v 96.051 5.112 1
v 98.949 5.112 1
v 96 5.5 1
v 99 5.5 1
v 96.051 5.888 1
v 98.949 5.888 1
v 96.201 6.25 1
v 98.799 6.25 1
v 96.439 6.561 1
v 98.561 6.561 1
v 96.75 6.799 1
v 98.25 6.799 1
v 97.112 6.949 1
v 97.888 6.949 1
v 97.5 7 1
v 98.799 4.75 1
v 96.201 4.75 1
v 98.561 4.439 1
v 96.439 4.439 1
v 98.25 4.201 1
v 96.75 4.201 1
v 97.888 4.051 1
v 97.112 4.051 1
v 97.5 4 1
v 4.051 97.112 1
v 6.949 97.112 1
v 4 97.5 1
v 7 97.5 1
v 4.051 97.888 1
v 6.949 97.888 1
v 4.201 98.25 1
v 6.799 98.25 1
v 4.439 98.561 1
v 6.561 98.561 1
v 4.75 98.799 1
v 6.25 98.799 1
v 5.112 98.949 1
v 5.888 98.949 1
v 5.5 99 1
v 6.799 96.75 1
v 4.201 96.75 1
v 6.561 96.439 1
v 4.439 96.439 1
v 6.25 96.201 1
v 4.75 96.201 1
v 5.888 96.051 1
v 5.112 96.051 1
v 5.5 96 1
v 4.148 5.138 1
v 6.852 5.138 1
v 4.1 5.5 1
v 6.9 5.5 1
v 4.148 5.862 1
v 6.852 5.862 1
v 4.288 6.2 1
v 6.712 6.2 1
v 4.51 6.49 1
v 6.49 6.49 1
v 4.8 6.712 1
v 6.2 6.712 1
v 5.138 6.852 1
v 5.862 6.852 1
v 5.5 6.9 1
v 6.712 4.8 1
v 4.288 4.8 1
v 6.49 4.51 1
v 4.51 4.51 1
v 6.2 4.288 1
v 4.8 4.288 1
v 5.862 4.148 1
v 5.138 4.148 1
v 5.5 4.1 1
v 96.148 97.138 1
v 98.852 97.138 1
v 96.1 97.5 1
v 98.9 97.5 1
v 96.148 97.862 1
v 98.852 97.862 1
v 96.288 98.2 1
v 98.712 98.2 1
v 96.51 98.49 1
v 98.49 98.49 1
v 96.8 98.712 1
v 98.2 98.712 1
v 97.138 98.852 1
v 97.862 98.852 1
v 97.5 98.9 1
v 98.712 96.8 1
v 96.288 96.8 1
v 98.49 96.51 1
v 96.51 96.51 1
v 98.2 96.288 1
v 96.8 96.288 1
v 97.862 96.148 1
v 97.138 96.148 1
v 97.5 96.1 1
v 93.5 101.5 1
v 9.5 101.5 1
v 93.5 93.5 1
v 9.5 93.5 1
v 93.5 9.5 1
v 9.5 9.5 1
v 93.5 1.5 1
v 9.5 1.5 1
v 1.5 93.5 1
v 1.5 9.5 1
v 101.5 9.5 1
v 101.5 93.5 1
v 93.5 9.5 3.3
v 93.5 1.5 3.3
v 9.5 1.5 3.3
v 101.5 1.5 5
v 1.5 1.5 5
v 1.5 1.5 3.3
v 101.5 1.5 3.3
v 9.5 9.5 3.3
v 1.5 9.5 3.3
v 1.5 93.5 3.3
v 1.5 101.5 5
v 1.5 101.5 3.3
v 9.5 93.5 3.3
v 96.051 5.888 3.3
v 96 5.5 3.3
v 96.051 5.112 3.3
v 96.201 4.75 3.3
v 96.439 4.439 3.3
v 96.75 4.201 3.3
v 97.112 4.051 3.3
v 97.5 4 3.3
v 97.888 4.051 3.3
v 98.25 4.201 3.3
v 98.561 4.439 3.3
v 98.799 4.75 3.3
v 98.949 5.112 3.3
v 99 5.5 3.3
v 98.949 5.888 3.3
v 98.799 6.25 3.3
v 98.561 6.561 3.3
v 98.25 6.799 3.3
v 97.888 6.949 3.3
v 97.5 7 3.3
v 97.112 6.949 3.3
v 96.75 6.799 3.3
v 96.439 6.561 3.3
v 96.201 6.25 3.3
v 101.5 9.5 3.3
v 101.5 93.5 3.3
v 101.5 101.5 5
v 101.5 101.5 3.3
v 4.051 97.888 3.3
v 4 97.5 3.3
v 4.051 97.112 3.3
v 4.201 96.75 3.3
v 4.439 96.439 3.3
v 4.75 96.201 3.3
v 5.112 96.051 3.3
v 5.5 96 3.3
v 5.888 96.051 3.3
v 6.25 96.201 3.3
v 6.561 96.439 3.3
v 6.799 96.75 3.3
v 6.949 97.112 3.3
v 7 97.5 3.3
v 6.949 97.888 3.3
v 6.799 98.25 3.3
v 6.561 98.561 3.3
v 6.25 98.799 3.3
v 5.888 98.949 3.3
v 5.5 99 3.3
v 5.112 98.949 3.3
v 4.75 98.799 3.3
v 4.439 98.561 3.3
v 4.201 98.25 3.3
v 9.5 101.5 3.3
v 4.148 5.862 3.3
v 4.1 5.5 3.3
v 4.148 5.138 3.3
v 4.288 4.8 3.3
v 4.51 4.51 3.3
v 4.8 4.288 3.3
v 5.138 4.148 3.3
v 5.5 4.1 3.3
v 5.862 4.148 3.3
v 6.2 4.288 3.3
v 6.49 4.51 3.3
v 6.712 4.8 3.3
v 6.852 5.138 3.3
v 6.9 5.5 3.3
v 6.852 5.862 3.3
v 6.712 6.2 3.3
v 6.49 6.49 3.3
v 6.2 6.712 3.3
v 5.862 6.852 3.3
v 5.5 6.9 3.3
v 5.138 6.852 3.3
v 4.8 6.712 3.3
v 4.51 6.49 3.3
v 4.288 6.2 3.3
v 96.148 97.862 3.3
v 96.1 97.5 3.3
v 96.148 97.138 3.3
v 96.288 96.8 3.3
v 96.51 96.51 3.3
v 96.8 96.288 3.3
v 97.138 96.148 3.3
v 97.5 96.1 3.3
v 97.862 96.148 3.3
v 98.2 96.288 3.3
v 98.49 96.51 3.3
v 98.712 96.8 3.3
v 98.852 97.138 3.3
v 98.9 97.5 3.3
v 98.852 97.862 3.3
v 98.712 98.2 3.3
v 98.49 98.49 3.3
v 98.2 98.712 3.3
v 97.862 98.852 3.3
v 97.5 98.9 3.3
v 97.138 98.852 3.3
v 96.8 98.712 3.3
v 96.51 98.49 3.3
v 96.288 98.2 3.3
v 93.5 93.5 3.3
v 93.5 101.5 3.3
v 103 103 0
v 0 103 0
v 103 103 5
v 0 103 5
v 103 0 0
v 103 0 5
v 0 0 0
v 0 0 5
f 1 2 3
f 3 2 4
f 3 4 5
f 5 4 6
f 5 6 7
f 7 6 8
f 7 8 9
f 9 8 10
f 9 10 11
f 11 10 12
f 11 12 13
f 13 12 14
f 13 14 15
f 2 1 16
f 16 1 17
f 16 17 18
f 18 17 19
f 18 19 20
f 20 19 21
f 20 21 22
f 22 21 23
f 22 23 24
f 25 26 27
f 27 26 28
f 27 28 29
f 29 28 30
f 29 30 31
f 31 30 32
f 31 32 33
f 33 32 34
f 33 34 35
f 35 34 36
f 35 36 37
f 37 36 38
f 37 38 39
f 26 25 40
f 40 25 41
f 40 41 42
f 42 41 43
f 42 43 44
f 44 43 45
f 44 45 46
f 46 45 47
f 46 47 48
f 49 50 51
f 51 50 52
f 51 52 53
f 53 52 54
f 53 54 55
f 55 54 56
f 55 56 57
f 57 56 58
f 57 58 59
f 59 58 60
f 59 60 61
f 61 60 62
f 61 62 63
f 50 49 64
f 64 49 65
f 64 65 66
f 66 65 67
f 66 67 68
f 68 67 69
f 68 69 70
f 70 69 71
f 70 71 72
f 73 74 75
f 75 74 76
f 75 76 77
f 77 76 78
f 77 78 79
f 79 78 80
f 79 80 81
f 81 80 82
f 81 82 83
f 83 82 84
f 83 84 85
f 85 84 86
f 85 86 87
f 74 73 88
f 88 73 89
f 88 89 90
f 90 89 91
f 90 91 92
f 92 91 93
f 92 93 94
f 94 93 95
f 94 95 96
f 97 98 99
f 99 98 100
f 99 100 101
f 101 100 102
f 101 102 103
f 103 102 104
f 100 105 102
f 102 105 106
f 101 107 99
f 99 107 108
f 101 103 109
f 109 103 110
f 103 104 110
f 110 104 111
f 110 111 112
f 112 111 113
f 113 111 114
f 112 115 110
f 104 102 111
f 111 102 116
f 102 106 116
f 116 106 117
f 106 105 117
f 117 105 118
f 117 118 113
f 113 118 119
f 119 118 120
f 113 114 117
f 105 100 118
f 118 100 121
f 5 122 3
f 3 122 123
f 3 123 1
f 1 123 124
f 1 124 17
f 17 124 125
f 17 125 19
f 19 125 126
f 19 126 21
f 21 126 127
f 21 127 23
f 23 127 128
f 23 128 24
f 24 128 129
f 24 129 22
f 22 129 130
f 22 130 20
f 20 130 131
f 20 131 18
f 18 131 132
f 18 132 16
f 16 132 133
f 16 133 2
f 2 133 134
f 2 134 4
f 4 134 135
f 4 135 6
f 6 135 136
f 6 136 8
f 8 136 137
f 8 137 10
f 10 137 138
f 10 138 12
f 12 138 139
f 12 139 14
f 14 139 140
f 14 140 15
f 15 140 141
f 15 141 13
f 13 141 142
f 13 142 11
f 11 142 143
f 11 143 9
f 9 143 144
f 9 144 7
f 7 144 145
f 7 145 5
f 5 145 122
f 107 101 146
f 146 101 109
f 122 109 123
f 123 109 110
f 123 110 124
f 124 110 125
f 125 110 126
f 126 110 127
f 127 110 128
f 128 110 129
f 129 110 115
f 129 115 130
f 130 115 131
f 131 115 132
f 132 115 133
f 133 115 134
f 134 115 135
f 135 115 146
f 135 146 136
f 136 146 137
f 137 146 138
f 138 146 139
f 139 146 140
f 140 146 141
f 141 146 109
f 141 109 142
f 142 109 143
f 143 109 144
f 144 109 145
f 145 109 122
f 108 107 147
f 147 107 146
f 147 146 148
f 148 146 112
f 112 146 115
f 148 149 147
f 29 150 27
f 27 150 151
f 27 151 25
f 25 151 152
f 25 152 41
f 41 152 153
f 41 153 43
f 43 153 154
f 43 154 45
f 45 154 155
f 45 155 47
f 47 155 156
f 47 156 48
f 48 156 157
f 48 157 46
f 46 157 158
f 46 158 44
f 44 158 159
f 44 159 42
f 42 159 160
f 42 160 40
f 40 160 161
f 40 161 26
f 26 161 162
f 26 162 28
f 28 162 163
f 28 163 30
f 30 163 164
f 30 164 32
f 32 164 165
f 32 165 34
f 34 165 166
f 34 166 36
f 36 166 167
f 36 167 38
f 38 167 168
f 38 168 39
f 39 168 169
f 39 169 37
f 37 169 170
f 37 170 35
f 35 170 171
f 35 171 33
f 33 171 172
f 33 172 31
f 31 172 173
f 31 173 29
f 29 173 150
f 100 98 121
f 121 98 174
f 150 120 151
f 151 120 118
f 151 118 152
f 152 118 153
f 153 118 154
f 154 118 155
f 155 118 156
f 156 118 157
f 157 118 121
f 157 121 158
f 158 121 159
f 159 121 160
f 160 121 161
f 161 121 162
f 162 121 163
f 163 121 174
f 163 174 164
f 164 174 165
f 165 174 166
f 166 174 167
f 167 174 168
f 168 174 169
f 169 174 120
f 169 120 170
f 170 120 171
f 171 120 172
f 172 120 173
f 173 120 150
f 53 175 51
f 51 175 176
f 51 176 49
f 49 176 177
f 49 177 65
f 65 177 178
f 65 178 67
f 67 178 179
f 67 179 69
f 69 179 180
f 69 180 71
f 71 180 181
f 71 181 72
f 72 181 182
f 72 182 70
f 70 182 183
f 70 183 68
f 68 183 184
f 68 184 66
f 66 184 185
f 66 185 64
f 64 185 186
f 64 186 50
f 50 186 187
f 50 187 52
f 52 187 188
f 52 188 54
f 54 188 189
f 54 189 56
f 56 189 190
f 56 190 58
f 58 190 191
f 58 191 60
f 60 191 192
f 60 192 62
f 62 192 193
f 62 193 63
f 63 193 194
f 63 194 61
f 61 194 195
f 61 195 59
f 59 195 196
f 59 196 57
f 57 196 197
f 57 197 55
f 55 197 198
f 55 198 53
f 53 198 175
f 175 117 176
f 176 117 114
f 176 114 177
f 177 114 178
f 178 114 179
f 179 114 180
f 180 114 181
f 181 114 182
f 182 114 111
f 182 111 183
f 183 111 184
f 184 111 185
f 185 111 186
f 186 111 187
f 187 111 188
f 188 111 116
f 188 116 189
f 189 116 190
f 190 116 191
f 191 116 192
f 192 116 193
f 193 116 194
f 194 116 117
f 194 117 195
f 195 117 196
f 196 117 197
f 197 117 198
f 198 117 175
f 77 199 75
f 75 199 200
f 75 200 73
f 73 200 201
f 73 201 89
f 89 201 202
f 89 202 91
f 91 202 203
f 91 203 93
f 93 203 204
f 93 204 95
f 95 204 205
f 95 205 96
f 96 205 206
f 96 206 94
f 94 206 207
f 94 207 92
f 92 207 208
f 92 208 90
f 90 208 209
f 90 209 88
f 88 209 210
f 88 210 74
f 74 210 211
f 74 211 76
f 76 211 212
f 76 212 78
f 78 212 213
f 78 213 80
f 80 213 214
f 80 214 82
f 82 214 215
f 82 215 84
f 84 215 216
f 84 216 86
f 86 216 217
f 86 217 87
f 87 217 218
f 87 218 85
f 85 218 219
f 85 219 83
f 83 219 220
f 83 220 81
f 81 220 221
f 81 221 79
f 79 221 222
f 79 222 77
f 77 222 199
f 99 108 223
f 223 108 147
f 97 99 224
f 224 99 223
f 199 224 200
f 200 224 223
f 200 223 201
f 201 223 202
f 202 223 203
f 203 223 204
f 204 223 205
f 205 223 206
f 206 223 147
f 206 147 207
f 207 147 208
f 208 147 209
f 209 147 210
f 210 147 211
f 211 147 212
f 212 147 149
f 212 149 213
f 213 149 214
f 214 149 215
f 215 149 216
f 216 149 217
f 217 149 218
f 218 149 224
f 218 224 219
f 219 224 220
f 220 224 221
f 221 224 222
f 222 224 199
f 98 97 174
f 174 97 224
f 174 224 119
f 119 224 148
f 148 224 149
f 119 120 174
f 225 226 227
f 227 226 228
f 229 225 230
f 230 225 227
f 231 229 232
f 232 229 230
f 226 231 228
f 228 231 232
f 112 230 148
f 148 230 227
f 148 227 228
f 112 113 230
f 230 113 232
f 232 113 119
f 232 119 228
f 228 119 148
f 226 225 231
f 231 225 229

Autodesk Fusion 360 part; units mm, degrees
sketch "스케치1" plane through (0, 0, 0) normal (0, 0, 1) x (1, 0, 0)
  line L0 (0, 0) -> (103, 0)
  line L1 (103, 0) -> (103, 103)
  line L2 (103, 103) -> (0, 103)
  line L3 (0, 103) -> (0, 0)
  line L4 (0, 80.7838) -> (1.5, 80.7838)
  line L5 (4.5156, 103) -> (4.5156, 101.5)
  line L6 (1.5, 101.5) -> (101.5, 101.5)
  line L7 (101.5, 101.5) -> (101.5, 1.5)
  line L8 (101.5, 1.5) -> (1.5, 1.5)
  line L9 (1.5, 1.5) -> (1.5, 101.5)
  line L10 (1.5, 101.5) -> (9.5, 101.5)
  line L11 (9.5, 101.5) -> (9.5, 93.5)
  line L12 (9.5, 93.5) -> (1.5, 93.5)
  line L13 (1.5, 93.5) -> (1.5, 101.5)
  line L14 (1.5, 1.5) -> (9.5, 1.5)
  line L15 (9.5, 1.5) -> (9.5, 9.5)
  line L16 (9.5, 9.5) -> (1.5, 9.5)
  line L17 (1.5, 9.5) -> (1.5, 1.5)
  line L18 (101.5, 1.5) -> (93.5, 1.5)
  line L19 (93.5, 1.5) -> (93.5, 9.5)
  line L20 (93.5, 9.5) -> (101.5, 9.5)
  line L21 (101.5, 9.5) -> (101.5, 1.5)
  line L22 (101.5, 101.5) -> (93.5, 101.5)
  line L23 (93.5, 101.5) -> (93.5, 93.5)
  line L24 (93.5, 93.5) -> (101.5, 93.5)
  line L25 (101.5, 93.5) -> (101.5, 101.5)
  circle A0 centre (5.5, 97.5) radius 1.5
  circle A1 centre (97.5, 97.5) radius 1.4
  circle A2 centre (5.5, 5.5) radius 1.4
  circle A3 centre (97.5, 5.5) radius 1.5
  dimension "d1" = 103
  dimension "d5" = 100
  dimension "d6" = 100
  dimension "d7" = 1.5
  dimension "d8" = 1.5
  dimension "d9" = 1.5
  dimension "d10" = 8
  dimension "d11" = 8
  dimension "d12" = 8
  dimension "d13" = 8
  dimension "d14" = 8
  dimension "d15" = 8
  dimension "d16" = 8
  dimension "d17" = 8
  dimension "d18" = 3
  dimension "d20" = 4
  dimension "d21" = 4
  dimension "d22" = 2.8
  dimension "d23" = 4
  dimension "d24" = 4
  dimension "d25" = 2.8
  dimension "d26" = 4
  dimension "d27" = 4
  dimension "d28" = 3
  dimension "d29" = 4
  dimension "d30" = 4
extrude "돌출1" add sketch "스케치1" along normal blind 5 contours L0 L1 L2 L3 L4 L5 L6 L7 L8 L9 L10 L14 L17 L18 L21 L22 L25 | L2 L3 L4 L5 L6 L9 L10 L13
extrude "돌출2" add sketch "스케치1" along normal blind 3.3 contours L8 L9 L14 L15 L16 L17 | L6 L9 L10 L11 L12 L13 | L6 L7 L22 L23 L24 L25 | L7 L8 L18 L19 L20 L21
extrude "돌출3" add sketch "스케치1" along normal blind 1 contours L6 L7 L8 L9 L11 L12 L15 L16 L19 L20 L23 L24
extrude "돌출4" add sketch "스케치1" along normal blind 1 contours A0 | A1 | A2 | A3
